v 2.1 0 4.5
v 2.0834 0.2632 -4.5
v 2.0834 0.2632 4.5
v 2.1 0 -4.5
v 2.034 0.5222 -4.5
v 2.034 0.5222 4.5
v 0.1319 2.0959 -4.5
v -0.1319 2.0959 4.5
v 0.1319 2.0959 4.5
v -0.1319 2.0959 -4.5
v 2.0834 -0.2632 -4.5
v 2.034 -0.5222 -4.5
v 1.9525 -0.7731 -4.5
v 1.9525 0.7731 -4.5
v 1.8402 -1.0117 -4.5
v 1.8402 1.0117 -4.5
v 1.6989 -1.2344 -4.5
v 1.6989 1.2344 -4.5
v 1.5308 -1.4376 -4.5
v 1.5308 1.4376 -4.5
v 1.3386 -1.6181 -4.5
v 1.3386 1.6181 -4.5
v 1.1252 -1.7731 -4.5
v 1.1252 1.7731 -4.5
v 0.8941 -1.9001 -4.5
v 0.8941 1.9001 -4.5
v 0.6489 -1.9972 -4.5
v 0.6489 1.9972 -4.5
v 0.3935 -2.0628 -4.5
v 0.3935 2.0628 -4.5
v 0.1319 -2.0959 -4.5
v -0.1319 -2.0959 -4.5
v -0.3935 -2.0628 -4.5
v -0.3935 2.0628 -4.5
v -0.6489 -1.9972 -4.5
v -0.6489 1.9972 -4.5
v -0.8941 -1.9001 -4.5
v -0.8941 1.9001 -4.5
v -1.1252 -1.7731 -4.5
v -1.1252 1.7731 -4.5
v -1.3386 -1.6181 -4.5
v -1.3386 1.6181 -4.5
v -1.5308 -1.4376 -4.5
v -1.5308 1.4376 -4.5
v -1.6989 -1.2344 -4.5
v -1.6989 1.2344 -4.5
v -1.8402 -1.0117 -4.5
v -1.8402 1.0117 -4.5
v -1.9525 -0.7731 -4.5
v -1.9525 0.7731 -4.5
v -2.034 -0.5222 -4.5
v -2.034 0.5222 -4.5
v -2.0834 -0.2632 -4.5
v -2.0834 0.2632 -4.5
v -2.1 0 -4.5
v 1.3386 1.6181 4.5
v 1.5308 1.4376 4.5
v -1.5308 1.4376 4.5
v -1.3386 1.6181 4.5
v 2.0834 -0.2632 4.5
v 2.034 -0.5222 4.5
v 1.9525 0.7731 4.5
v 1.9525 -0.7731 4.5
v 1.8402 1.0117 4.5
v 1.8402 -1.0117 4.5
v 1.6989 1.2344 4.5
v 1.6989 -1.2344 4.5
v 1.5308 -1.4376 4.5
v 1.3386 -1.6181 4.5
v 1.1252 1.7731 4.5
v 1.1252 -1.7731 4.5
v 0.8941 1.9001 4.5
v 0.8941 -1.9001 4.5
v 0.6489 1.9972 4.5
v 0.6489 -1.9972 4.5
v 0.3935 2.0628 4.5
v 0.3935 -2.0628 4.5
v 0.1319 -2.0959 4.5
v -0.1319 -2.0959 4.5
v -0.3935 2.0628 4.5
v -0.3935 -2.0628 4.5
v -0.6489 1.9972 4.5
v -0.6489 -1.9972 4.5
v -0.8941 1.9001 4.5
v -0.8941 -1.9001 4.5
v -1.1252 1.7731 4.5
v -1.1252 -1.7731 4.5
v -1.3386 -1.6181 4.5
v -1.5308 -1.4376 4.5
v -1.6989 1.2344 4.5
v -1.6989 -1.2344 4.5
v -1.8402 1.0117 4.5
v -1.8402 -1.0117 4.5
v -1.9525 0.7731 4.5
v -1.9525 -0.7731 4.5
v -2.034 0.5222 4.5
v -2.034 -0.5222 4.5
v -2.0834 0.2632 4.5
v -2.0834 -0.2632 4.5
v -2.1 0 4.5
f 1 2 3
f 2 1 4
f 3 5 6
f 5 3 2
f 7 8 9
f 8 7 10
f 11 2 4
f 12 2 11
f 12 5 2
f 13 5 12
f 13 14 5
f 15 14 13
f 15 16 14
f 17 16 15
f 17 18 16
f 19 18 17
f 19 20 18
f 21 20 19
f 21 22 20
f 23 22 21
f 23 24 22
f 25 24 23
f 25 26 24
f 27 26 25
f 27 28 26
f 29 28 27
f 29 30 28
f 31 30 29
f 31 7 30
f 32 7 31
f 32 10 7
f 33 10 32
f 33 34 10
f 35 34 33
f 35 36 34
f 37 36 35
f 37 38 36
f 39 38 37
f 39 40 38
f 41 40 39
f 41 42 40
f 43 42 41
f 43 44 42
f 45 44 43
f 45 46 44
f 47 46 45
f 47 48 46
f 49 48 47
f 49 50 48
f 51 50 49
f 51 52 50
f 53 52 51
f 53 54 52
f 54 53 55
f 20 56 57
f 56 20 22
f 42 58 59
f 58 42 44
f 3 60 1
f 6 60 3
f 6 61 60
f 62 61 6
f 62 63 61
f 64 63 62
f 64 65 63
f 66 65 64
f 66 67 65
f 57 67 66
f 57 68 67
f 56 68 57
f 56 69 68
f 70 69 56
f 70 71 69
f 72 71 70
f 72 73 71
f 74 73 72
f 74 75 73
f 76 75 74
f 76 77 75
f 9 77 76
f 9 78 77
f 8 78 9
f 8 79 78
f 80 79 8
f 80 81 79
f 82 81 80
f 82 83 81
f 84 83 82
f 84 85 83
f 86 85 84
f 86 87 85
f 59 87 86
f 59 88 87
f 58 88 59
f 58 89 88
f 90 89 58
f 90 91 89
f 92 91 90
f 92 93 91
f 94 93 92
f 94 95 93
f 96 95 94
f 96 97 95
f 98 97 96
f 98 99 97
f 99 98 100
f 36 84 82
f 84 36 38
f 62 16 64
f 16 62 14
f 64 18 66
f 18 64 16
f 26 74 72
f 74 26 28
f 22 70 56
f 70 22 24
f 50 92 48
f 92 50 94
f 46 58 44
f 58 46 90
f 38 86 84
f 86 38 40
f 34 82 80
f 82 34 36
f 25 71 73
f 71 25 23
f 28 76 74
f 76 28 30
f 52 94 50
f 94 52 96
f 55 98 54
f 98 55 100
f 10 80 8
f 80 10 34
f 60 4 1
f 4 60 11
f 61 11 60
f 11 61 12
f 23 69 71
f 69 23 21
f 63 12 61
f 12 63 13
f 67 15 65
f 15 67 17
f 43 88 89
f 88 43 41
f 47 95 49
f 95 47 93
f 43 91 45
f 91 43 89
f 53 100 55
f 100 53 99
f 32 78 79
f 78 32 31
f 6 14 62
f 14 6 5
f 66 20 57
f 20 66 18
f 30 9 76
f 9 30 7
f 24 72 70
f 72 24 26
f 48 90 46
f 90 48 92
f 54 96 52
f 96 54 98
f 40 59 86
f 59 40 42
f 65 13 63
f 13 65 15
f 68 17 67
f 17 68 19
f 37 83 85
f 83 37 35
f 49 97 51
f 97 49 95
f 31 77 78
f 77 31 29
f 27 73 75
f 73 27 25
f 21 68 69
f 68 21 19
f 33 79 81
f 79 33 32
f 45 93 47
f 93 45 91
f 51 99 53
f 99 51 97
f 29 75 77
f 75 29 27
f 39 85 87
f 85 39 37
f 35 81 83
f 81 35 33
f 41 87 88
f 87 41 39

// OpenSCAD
$fn = 50;


difference() {
	union() {
		translate(v = [0, 0, -4.5000000000]) {
			cylinder(h = 9, r = 2.1000000000);
		}
	}
	union() {
		translate(v = [0, 0, -100.0000000000]) {
			cylinder(h = 200, r = 0);
		}
	}
}
